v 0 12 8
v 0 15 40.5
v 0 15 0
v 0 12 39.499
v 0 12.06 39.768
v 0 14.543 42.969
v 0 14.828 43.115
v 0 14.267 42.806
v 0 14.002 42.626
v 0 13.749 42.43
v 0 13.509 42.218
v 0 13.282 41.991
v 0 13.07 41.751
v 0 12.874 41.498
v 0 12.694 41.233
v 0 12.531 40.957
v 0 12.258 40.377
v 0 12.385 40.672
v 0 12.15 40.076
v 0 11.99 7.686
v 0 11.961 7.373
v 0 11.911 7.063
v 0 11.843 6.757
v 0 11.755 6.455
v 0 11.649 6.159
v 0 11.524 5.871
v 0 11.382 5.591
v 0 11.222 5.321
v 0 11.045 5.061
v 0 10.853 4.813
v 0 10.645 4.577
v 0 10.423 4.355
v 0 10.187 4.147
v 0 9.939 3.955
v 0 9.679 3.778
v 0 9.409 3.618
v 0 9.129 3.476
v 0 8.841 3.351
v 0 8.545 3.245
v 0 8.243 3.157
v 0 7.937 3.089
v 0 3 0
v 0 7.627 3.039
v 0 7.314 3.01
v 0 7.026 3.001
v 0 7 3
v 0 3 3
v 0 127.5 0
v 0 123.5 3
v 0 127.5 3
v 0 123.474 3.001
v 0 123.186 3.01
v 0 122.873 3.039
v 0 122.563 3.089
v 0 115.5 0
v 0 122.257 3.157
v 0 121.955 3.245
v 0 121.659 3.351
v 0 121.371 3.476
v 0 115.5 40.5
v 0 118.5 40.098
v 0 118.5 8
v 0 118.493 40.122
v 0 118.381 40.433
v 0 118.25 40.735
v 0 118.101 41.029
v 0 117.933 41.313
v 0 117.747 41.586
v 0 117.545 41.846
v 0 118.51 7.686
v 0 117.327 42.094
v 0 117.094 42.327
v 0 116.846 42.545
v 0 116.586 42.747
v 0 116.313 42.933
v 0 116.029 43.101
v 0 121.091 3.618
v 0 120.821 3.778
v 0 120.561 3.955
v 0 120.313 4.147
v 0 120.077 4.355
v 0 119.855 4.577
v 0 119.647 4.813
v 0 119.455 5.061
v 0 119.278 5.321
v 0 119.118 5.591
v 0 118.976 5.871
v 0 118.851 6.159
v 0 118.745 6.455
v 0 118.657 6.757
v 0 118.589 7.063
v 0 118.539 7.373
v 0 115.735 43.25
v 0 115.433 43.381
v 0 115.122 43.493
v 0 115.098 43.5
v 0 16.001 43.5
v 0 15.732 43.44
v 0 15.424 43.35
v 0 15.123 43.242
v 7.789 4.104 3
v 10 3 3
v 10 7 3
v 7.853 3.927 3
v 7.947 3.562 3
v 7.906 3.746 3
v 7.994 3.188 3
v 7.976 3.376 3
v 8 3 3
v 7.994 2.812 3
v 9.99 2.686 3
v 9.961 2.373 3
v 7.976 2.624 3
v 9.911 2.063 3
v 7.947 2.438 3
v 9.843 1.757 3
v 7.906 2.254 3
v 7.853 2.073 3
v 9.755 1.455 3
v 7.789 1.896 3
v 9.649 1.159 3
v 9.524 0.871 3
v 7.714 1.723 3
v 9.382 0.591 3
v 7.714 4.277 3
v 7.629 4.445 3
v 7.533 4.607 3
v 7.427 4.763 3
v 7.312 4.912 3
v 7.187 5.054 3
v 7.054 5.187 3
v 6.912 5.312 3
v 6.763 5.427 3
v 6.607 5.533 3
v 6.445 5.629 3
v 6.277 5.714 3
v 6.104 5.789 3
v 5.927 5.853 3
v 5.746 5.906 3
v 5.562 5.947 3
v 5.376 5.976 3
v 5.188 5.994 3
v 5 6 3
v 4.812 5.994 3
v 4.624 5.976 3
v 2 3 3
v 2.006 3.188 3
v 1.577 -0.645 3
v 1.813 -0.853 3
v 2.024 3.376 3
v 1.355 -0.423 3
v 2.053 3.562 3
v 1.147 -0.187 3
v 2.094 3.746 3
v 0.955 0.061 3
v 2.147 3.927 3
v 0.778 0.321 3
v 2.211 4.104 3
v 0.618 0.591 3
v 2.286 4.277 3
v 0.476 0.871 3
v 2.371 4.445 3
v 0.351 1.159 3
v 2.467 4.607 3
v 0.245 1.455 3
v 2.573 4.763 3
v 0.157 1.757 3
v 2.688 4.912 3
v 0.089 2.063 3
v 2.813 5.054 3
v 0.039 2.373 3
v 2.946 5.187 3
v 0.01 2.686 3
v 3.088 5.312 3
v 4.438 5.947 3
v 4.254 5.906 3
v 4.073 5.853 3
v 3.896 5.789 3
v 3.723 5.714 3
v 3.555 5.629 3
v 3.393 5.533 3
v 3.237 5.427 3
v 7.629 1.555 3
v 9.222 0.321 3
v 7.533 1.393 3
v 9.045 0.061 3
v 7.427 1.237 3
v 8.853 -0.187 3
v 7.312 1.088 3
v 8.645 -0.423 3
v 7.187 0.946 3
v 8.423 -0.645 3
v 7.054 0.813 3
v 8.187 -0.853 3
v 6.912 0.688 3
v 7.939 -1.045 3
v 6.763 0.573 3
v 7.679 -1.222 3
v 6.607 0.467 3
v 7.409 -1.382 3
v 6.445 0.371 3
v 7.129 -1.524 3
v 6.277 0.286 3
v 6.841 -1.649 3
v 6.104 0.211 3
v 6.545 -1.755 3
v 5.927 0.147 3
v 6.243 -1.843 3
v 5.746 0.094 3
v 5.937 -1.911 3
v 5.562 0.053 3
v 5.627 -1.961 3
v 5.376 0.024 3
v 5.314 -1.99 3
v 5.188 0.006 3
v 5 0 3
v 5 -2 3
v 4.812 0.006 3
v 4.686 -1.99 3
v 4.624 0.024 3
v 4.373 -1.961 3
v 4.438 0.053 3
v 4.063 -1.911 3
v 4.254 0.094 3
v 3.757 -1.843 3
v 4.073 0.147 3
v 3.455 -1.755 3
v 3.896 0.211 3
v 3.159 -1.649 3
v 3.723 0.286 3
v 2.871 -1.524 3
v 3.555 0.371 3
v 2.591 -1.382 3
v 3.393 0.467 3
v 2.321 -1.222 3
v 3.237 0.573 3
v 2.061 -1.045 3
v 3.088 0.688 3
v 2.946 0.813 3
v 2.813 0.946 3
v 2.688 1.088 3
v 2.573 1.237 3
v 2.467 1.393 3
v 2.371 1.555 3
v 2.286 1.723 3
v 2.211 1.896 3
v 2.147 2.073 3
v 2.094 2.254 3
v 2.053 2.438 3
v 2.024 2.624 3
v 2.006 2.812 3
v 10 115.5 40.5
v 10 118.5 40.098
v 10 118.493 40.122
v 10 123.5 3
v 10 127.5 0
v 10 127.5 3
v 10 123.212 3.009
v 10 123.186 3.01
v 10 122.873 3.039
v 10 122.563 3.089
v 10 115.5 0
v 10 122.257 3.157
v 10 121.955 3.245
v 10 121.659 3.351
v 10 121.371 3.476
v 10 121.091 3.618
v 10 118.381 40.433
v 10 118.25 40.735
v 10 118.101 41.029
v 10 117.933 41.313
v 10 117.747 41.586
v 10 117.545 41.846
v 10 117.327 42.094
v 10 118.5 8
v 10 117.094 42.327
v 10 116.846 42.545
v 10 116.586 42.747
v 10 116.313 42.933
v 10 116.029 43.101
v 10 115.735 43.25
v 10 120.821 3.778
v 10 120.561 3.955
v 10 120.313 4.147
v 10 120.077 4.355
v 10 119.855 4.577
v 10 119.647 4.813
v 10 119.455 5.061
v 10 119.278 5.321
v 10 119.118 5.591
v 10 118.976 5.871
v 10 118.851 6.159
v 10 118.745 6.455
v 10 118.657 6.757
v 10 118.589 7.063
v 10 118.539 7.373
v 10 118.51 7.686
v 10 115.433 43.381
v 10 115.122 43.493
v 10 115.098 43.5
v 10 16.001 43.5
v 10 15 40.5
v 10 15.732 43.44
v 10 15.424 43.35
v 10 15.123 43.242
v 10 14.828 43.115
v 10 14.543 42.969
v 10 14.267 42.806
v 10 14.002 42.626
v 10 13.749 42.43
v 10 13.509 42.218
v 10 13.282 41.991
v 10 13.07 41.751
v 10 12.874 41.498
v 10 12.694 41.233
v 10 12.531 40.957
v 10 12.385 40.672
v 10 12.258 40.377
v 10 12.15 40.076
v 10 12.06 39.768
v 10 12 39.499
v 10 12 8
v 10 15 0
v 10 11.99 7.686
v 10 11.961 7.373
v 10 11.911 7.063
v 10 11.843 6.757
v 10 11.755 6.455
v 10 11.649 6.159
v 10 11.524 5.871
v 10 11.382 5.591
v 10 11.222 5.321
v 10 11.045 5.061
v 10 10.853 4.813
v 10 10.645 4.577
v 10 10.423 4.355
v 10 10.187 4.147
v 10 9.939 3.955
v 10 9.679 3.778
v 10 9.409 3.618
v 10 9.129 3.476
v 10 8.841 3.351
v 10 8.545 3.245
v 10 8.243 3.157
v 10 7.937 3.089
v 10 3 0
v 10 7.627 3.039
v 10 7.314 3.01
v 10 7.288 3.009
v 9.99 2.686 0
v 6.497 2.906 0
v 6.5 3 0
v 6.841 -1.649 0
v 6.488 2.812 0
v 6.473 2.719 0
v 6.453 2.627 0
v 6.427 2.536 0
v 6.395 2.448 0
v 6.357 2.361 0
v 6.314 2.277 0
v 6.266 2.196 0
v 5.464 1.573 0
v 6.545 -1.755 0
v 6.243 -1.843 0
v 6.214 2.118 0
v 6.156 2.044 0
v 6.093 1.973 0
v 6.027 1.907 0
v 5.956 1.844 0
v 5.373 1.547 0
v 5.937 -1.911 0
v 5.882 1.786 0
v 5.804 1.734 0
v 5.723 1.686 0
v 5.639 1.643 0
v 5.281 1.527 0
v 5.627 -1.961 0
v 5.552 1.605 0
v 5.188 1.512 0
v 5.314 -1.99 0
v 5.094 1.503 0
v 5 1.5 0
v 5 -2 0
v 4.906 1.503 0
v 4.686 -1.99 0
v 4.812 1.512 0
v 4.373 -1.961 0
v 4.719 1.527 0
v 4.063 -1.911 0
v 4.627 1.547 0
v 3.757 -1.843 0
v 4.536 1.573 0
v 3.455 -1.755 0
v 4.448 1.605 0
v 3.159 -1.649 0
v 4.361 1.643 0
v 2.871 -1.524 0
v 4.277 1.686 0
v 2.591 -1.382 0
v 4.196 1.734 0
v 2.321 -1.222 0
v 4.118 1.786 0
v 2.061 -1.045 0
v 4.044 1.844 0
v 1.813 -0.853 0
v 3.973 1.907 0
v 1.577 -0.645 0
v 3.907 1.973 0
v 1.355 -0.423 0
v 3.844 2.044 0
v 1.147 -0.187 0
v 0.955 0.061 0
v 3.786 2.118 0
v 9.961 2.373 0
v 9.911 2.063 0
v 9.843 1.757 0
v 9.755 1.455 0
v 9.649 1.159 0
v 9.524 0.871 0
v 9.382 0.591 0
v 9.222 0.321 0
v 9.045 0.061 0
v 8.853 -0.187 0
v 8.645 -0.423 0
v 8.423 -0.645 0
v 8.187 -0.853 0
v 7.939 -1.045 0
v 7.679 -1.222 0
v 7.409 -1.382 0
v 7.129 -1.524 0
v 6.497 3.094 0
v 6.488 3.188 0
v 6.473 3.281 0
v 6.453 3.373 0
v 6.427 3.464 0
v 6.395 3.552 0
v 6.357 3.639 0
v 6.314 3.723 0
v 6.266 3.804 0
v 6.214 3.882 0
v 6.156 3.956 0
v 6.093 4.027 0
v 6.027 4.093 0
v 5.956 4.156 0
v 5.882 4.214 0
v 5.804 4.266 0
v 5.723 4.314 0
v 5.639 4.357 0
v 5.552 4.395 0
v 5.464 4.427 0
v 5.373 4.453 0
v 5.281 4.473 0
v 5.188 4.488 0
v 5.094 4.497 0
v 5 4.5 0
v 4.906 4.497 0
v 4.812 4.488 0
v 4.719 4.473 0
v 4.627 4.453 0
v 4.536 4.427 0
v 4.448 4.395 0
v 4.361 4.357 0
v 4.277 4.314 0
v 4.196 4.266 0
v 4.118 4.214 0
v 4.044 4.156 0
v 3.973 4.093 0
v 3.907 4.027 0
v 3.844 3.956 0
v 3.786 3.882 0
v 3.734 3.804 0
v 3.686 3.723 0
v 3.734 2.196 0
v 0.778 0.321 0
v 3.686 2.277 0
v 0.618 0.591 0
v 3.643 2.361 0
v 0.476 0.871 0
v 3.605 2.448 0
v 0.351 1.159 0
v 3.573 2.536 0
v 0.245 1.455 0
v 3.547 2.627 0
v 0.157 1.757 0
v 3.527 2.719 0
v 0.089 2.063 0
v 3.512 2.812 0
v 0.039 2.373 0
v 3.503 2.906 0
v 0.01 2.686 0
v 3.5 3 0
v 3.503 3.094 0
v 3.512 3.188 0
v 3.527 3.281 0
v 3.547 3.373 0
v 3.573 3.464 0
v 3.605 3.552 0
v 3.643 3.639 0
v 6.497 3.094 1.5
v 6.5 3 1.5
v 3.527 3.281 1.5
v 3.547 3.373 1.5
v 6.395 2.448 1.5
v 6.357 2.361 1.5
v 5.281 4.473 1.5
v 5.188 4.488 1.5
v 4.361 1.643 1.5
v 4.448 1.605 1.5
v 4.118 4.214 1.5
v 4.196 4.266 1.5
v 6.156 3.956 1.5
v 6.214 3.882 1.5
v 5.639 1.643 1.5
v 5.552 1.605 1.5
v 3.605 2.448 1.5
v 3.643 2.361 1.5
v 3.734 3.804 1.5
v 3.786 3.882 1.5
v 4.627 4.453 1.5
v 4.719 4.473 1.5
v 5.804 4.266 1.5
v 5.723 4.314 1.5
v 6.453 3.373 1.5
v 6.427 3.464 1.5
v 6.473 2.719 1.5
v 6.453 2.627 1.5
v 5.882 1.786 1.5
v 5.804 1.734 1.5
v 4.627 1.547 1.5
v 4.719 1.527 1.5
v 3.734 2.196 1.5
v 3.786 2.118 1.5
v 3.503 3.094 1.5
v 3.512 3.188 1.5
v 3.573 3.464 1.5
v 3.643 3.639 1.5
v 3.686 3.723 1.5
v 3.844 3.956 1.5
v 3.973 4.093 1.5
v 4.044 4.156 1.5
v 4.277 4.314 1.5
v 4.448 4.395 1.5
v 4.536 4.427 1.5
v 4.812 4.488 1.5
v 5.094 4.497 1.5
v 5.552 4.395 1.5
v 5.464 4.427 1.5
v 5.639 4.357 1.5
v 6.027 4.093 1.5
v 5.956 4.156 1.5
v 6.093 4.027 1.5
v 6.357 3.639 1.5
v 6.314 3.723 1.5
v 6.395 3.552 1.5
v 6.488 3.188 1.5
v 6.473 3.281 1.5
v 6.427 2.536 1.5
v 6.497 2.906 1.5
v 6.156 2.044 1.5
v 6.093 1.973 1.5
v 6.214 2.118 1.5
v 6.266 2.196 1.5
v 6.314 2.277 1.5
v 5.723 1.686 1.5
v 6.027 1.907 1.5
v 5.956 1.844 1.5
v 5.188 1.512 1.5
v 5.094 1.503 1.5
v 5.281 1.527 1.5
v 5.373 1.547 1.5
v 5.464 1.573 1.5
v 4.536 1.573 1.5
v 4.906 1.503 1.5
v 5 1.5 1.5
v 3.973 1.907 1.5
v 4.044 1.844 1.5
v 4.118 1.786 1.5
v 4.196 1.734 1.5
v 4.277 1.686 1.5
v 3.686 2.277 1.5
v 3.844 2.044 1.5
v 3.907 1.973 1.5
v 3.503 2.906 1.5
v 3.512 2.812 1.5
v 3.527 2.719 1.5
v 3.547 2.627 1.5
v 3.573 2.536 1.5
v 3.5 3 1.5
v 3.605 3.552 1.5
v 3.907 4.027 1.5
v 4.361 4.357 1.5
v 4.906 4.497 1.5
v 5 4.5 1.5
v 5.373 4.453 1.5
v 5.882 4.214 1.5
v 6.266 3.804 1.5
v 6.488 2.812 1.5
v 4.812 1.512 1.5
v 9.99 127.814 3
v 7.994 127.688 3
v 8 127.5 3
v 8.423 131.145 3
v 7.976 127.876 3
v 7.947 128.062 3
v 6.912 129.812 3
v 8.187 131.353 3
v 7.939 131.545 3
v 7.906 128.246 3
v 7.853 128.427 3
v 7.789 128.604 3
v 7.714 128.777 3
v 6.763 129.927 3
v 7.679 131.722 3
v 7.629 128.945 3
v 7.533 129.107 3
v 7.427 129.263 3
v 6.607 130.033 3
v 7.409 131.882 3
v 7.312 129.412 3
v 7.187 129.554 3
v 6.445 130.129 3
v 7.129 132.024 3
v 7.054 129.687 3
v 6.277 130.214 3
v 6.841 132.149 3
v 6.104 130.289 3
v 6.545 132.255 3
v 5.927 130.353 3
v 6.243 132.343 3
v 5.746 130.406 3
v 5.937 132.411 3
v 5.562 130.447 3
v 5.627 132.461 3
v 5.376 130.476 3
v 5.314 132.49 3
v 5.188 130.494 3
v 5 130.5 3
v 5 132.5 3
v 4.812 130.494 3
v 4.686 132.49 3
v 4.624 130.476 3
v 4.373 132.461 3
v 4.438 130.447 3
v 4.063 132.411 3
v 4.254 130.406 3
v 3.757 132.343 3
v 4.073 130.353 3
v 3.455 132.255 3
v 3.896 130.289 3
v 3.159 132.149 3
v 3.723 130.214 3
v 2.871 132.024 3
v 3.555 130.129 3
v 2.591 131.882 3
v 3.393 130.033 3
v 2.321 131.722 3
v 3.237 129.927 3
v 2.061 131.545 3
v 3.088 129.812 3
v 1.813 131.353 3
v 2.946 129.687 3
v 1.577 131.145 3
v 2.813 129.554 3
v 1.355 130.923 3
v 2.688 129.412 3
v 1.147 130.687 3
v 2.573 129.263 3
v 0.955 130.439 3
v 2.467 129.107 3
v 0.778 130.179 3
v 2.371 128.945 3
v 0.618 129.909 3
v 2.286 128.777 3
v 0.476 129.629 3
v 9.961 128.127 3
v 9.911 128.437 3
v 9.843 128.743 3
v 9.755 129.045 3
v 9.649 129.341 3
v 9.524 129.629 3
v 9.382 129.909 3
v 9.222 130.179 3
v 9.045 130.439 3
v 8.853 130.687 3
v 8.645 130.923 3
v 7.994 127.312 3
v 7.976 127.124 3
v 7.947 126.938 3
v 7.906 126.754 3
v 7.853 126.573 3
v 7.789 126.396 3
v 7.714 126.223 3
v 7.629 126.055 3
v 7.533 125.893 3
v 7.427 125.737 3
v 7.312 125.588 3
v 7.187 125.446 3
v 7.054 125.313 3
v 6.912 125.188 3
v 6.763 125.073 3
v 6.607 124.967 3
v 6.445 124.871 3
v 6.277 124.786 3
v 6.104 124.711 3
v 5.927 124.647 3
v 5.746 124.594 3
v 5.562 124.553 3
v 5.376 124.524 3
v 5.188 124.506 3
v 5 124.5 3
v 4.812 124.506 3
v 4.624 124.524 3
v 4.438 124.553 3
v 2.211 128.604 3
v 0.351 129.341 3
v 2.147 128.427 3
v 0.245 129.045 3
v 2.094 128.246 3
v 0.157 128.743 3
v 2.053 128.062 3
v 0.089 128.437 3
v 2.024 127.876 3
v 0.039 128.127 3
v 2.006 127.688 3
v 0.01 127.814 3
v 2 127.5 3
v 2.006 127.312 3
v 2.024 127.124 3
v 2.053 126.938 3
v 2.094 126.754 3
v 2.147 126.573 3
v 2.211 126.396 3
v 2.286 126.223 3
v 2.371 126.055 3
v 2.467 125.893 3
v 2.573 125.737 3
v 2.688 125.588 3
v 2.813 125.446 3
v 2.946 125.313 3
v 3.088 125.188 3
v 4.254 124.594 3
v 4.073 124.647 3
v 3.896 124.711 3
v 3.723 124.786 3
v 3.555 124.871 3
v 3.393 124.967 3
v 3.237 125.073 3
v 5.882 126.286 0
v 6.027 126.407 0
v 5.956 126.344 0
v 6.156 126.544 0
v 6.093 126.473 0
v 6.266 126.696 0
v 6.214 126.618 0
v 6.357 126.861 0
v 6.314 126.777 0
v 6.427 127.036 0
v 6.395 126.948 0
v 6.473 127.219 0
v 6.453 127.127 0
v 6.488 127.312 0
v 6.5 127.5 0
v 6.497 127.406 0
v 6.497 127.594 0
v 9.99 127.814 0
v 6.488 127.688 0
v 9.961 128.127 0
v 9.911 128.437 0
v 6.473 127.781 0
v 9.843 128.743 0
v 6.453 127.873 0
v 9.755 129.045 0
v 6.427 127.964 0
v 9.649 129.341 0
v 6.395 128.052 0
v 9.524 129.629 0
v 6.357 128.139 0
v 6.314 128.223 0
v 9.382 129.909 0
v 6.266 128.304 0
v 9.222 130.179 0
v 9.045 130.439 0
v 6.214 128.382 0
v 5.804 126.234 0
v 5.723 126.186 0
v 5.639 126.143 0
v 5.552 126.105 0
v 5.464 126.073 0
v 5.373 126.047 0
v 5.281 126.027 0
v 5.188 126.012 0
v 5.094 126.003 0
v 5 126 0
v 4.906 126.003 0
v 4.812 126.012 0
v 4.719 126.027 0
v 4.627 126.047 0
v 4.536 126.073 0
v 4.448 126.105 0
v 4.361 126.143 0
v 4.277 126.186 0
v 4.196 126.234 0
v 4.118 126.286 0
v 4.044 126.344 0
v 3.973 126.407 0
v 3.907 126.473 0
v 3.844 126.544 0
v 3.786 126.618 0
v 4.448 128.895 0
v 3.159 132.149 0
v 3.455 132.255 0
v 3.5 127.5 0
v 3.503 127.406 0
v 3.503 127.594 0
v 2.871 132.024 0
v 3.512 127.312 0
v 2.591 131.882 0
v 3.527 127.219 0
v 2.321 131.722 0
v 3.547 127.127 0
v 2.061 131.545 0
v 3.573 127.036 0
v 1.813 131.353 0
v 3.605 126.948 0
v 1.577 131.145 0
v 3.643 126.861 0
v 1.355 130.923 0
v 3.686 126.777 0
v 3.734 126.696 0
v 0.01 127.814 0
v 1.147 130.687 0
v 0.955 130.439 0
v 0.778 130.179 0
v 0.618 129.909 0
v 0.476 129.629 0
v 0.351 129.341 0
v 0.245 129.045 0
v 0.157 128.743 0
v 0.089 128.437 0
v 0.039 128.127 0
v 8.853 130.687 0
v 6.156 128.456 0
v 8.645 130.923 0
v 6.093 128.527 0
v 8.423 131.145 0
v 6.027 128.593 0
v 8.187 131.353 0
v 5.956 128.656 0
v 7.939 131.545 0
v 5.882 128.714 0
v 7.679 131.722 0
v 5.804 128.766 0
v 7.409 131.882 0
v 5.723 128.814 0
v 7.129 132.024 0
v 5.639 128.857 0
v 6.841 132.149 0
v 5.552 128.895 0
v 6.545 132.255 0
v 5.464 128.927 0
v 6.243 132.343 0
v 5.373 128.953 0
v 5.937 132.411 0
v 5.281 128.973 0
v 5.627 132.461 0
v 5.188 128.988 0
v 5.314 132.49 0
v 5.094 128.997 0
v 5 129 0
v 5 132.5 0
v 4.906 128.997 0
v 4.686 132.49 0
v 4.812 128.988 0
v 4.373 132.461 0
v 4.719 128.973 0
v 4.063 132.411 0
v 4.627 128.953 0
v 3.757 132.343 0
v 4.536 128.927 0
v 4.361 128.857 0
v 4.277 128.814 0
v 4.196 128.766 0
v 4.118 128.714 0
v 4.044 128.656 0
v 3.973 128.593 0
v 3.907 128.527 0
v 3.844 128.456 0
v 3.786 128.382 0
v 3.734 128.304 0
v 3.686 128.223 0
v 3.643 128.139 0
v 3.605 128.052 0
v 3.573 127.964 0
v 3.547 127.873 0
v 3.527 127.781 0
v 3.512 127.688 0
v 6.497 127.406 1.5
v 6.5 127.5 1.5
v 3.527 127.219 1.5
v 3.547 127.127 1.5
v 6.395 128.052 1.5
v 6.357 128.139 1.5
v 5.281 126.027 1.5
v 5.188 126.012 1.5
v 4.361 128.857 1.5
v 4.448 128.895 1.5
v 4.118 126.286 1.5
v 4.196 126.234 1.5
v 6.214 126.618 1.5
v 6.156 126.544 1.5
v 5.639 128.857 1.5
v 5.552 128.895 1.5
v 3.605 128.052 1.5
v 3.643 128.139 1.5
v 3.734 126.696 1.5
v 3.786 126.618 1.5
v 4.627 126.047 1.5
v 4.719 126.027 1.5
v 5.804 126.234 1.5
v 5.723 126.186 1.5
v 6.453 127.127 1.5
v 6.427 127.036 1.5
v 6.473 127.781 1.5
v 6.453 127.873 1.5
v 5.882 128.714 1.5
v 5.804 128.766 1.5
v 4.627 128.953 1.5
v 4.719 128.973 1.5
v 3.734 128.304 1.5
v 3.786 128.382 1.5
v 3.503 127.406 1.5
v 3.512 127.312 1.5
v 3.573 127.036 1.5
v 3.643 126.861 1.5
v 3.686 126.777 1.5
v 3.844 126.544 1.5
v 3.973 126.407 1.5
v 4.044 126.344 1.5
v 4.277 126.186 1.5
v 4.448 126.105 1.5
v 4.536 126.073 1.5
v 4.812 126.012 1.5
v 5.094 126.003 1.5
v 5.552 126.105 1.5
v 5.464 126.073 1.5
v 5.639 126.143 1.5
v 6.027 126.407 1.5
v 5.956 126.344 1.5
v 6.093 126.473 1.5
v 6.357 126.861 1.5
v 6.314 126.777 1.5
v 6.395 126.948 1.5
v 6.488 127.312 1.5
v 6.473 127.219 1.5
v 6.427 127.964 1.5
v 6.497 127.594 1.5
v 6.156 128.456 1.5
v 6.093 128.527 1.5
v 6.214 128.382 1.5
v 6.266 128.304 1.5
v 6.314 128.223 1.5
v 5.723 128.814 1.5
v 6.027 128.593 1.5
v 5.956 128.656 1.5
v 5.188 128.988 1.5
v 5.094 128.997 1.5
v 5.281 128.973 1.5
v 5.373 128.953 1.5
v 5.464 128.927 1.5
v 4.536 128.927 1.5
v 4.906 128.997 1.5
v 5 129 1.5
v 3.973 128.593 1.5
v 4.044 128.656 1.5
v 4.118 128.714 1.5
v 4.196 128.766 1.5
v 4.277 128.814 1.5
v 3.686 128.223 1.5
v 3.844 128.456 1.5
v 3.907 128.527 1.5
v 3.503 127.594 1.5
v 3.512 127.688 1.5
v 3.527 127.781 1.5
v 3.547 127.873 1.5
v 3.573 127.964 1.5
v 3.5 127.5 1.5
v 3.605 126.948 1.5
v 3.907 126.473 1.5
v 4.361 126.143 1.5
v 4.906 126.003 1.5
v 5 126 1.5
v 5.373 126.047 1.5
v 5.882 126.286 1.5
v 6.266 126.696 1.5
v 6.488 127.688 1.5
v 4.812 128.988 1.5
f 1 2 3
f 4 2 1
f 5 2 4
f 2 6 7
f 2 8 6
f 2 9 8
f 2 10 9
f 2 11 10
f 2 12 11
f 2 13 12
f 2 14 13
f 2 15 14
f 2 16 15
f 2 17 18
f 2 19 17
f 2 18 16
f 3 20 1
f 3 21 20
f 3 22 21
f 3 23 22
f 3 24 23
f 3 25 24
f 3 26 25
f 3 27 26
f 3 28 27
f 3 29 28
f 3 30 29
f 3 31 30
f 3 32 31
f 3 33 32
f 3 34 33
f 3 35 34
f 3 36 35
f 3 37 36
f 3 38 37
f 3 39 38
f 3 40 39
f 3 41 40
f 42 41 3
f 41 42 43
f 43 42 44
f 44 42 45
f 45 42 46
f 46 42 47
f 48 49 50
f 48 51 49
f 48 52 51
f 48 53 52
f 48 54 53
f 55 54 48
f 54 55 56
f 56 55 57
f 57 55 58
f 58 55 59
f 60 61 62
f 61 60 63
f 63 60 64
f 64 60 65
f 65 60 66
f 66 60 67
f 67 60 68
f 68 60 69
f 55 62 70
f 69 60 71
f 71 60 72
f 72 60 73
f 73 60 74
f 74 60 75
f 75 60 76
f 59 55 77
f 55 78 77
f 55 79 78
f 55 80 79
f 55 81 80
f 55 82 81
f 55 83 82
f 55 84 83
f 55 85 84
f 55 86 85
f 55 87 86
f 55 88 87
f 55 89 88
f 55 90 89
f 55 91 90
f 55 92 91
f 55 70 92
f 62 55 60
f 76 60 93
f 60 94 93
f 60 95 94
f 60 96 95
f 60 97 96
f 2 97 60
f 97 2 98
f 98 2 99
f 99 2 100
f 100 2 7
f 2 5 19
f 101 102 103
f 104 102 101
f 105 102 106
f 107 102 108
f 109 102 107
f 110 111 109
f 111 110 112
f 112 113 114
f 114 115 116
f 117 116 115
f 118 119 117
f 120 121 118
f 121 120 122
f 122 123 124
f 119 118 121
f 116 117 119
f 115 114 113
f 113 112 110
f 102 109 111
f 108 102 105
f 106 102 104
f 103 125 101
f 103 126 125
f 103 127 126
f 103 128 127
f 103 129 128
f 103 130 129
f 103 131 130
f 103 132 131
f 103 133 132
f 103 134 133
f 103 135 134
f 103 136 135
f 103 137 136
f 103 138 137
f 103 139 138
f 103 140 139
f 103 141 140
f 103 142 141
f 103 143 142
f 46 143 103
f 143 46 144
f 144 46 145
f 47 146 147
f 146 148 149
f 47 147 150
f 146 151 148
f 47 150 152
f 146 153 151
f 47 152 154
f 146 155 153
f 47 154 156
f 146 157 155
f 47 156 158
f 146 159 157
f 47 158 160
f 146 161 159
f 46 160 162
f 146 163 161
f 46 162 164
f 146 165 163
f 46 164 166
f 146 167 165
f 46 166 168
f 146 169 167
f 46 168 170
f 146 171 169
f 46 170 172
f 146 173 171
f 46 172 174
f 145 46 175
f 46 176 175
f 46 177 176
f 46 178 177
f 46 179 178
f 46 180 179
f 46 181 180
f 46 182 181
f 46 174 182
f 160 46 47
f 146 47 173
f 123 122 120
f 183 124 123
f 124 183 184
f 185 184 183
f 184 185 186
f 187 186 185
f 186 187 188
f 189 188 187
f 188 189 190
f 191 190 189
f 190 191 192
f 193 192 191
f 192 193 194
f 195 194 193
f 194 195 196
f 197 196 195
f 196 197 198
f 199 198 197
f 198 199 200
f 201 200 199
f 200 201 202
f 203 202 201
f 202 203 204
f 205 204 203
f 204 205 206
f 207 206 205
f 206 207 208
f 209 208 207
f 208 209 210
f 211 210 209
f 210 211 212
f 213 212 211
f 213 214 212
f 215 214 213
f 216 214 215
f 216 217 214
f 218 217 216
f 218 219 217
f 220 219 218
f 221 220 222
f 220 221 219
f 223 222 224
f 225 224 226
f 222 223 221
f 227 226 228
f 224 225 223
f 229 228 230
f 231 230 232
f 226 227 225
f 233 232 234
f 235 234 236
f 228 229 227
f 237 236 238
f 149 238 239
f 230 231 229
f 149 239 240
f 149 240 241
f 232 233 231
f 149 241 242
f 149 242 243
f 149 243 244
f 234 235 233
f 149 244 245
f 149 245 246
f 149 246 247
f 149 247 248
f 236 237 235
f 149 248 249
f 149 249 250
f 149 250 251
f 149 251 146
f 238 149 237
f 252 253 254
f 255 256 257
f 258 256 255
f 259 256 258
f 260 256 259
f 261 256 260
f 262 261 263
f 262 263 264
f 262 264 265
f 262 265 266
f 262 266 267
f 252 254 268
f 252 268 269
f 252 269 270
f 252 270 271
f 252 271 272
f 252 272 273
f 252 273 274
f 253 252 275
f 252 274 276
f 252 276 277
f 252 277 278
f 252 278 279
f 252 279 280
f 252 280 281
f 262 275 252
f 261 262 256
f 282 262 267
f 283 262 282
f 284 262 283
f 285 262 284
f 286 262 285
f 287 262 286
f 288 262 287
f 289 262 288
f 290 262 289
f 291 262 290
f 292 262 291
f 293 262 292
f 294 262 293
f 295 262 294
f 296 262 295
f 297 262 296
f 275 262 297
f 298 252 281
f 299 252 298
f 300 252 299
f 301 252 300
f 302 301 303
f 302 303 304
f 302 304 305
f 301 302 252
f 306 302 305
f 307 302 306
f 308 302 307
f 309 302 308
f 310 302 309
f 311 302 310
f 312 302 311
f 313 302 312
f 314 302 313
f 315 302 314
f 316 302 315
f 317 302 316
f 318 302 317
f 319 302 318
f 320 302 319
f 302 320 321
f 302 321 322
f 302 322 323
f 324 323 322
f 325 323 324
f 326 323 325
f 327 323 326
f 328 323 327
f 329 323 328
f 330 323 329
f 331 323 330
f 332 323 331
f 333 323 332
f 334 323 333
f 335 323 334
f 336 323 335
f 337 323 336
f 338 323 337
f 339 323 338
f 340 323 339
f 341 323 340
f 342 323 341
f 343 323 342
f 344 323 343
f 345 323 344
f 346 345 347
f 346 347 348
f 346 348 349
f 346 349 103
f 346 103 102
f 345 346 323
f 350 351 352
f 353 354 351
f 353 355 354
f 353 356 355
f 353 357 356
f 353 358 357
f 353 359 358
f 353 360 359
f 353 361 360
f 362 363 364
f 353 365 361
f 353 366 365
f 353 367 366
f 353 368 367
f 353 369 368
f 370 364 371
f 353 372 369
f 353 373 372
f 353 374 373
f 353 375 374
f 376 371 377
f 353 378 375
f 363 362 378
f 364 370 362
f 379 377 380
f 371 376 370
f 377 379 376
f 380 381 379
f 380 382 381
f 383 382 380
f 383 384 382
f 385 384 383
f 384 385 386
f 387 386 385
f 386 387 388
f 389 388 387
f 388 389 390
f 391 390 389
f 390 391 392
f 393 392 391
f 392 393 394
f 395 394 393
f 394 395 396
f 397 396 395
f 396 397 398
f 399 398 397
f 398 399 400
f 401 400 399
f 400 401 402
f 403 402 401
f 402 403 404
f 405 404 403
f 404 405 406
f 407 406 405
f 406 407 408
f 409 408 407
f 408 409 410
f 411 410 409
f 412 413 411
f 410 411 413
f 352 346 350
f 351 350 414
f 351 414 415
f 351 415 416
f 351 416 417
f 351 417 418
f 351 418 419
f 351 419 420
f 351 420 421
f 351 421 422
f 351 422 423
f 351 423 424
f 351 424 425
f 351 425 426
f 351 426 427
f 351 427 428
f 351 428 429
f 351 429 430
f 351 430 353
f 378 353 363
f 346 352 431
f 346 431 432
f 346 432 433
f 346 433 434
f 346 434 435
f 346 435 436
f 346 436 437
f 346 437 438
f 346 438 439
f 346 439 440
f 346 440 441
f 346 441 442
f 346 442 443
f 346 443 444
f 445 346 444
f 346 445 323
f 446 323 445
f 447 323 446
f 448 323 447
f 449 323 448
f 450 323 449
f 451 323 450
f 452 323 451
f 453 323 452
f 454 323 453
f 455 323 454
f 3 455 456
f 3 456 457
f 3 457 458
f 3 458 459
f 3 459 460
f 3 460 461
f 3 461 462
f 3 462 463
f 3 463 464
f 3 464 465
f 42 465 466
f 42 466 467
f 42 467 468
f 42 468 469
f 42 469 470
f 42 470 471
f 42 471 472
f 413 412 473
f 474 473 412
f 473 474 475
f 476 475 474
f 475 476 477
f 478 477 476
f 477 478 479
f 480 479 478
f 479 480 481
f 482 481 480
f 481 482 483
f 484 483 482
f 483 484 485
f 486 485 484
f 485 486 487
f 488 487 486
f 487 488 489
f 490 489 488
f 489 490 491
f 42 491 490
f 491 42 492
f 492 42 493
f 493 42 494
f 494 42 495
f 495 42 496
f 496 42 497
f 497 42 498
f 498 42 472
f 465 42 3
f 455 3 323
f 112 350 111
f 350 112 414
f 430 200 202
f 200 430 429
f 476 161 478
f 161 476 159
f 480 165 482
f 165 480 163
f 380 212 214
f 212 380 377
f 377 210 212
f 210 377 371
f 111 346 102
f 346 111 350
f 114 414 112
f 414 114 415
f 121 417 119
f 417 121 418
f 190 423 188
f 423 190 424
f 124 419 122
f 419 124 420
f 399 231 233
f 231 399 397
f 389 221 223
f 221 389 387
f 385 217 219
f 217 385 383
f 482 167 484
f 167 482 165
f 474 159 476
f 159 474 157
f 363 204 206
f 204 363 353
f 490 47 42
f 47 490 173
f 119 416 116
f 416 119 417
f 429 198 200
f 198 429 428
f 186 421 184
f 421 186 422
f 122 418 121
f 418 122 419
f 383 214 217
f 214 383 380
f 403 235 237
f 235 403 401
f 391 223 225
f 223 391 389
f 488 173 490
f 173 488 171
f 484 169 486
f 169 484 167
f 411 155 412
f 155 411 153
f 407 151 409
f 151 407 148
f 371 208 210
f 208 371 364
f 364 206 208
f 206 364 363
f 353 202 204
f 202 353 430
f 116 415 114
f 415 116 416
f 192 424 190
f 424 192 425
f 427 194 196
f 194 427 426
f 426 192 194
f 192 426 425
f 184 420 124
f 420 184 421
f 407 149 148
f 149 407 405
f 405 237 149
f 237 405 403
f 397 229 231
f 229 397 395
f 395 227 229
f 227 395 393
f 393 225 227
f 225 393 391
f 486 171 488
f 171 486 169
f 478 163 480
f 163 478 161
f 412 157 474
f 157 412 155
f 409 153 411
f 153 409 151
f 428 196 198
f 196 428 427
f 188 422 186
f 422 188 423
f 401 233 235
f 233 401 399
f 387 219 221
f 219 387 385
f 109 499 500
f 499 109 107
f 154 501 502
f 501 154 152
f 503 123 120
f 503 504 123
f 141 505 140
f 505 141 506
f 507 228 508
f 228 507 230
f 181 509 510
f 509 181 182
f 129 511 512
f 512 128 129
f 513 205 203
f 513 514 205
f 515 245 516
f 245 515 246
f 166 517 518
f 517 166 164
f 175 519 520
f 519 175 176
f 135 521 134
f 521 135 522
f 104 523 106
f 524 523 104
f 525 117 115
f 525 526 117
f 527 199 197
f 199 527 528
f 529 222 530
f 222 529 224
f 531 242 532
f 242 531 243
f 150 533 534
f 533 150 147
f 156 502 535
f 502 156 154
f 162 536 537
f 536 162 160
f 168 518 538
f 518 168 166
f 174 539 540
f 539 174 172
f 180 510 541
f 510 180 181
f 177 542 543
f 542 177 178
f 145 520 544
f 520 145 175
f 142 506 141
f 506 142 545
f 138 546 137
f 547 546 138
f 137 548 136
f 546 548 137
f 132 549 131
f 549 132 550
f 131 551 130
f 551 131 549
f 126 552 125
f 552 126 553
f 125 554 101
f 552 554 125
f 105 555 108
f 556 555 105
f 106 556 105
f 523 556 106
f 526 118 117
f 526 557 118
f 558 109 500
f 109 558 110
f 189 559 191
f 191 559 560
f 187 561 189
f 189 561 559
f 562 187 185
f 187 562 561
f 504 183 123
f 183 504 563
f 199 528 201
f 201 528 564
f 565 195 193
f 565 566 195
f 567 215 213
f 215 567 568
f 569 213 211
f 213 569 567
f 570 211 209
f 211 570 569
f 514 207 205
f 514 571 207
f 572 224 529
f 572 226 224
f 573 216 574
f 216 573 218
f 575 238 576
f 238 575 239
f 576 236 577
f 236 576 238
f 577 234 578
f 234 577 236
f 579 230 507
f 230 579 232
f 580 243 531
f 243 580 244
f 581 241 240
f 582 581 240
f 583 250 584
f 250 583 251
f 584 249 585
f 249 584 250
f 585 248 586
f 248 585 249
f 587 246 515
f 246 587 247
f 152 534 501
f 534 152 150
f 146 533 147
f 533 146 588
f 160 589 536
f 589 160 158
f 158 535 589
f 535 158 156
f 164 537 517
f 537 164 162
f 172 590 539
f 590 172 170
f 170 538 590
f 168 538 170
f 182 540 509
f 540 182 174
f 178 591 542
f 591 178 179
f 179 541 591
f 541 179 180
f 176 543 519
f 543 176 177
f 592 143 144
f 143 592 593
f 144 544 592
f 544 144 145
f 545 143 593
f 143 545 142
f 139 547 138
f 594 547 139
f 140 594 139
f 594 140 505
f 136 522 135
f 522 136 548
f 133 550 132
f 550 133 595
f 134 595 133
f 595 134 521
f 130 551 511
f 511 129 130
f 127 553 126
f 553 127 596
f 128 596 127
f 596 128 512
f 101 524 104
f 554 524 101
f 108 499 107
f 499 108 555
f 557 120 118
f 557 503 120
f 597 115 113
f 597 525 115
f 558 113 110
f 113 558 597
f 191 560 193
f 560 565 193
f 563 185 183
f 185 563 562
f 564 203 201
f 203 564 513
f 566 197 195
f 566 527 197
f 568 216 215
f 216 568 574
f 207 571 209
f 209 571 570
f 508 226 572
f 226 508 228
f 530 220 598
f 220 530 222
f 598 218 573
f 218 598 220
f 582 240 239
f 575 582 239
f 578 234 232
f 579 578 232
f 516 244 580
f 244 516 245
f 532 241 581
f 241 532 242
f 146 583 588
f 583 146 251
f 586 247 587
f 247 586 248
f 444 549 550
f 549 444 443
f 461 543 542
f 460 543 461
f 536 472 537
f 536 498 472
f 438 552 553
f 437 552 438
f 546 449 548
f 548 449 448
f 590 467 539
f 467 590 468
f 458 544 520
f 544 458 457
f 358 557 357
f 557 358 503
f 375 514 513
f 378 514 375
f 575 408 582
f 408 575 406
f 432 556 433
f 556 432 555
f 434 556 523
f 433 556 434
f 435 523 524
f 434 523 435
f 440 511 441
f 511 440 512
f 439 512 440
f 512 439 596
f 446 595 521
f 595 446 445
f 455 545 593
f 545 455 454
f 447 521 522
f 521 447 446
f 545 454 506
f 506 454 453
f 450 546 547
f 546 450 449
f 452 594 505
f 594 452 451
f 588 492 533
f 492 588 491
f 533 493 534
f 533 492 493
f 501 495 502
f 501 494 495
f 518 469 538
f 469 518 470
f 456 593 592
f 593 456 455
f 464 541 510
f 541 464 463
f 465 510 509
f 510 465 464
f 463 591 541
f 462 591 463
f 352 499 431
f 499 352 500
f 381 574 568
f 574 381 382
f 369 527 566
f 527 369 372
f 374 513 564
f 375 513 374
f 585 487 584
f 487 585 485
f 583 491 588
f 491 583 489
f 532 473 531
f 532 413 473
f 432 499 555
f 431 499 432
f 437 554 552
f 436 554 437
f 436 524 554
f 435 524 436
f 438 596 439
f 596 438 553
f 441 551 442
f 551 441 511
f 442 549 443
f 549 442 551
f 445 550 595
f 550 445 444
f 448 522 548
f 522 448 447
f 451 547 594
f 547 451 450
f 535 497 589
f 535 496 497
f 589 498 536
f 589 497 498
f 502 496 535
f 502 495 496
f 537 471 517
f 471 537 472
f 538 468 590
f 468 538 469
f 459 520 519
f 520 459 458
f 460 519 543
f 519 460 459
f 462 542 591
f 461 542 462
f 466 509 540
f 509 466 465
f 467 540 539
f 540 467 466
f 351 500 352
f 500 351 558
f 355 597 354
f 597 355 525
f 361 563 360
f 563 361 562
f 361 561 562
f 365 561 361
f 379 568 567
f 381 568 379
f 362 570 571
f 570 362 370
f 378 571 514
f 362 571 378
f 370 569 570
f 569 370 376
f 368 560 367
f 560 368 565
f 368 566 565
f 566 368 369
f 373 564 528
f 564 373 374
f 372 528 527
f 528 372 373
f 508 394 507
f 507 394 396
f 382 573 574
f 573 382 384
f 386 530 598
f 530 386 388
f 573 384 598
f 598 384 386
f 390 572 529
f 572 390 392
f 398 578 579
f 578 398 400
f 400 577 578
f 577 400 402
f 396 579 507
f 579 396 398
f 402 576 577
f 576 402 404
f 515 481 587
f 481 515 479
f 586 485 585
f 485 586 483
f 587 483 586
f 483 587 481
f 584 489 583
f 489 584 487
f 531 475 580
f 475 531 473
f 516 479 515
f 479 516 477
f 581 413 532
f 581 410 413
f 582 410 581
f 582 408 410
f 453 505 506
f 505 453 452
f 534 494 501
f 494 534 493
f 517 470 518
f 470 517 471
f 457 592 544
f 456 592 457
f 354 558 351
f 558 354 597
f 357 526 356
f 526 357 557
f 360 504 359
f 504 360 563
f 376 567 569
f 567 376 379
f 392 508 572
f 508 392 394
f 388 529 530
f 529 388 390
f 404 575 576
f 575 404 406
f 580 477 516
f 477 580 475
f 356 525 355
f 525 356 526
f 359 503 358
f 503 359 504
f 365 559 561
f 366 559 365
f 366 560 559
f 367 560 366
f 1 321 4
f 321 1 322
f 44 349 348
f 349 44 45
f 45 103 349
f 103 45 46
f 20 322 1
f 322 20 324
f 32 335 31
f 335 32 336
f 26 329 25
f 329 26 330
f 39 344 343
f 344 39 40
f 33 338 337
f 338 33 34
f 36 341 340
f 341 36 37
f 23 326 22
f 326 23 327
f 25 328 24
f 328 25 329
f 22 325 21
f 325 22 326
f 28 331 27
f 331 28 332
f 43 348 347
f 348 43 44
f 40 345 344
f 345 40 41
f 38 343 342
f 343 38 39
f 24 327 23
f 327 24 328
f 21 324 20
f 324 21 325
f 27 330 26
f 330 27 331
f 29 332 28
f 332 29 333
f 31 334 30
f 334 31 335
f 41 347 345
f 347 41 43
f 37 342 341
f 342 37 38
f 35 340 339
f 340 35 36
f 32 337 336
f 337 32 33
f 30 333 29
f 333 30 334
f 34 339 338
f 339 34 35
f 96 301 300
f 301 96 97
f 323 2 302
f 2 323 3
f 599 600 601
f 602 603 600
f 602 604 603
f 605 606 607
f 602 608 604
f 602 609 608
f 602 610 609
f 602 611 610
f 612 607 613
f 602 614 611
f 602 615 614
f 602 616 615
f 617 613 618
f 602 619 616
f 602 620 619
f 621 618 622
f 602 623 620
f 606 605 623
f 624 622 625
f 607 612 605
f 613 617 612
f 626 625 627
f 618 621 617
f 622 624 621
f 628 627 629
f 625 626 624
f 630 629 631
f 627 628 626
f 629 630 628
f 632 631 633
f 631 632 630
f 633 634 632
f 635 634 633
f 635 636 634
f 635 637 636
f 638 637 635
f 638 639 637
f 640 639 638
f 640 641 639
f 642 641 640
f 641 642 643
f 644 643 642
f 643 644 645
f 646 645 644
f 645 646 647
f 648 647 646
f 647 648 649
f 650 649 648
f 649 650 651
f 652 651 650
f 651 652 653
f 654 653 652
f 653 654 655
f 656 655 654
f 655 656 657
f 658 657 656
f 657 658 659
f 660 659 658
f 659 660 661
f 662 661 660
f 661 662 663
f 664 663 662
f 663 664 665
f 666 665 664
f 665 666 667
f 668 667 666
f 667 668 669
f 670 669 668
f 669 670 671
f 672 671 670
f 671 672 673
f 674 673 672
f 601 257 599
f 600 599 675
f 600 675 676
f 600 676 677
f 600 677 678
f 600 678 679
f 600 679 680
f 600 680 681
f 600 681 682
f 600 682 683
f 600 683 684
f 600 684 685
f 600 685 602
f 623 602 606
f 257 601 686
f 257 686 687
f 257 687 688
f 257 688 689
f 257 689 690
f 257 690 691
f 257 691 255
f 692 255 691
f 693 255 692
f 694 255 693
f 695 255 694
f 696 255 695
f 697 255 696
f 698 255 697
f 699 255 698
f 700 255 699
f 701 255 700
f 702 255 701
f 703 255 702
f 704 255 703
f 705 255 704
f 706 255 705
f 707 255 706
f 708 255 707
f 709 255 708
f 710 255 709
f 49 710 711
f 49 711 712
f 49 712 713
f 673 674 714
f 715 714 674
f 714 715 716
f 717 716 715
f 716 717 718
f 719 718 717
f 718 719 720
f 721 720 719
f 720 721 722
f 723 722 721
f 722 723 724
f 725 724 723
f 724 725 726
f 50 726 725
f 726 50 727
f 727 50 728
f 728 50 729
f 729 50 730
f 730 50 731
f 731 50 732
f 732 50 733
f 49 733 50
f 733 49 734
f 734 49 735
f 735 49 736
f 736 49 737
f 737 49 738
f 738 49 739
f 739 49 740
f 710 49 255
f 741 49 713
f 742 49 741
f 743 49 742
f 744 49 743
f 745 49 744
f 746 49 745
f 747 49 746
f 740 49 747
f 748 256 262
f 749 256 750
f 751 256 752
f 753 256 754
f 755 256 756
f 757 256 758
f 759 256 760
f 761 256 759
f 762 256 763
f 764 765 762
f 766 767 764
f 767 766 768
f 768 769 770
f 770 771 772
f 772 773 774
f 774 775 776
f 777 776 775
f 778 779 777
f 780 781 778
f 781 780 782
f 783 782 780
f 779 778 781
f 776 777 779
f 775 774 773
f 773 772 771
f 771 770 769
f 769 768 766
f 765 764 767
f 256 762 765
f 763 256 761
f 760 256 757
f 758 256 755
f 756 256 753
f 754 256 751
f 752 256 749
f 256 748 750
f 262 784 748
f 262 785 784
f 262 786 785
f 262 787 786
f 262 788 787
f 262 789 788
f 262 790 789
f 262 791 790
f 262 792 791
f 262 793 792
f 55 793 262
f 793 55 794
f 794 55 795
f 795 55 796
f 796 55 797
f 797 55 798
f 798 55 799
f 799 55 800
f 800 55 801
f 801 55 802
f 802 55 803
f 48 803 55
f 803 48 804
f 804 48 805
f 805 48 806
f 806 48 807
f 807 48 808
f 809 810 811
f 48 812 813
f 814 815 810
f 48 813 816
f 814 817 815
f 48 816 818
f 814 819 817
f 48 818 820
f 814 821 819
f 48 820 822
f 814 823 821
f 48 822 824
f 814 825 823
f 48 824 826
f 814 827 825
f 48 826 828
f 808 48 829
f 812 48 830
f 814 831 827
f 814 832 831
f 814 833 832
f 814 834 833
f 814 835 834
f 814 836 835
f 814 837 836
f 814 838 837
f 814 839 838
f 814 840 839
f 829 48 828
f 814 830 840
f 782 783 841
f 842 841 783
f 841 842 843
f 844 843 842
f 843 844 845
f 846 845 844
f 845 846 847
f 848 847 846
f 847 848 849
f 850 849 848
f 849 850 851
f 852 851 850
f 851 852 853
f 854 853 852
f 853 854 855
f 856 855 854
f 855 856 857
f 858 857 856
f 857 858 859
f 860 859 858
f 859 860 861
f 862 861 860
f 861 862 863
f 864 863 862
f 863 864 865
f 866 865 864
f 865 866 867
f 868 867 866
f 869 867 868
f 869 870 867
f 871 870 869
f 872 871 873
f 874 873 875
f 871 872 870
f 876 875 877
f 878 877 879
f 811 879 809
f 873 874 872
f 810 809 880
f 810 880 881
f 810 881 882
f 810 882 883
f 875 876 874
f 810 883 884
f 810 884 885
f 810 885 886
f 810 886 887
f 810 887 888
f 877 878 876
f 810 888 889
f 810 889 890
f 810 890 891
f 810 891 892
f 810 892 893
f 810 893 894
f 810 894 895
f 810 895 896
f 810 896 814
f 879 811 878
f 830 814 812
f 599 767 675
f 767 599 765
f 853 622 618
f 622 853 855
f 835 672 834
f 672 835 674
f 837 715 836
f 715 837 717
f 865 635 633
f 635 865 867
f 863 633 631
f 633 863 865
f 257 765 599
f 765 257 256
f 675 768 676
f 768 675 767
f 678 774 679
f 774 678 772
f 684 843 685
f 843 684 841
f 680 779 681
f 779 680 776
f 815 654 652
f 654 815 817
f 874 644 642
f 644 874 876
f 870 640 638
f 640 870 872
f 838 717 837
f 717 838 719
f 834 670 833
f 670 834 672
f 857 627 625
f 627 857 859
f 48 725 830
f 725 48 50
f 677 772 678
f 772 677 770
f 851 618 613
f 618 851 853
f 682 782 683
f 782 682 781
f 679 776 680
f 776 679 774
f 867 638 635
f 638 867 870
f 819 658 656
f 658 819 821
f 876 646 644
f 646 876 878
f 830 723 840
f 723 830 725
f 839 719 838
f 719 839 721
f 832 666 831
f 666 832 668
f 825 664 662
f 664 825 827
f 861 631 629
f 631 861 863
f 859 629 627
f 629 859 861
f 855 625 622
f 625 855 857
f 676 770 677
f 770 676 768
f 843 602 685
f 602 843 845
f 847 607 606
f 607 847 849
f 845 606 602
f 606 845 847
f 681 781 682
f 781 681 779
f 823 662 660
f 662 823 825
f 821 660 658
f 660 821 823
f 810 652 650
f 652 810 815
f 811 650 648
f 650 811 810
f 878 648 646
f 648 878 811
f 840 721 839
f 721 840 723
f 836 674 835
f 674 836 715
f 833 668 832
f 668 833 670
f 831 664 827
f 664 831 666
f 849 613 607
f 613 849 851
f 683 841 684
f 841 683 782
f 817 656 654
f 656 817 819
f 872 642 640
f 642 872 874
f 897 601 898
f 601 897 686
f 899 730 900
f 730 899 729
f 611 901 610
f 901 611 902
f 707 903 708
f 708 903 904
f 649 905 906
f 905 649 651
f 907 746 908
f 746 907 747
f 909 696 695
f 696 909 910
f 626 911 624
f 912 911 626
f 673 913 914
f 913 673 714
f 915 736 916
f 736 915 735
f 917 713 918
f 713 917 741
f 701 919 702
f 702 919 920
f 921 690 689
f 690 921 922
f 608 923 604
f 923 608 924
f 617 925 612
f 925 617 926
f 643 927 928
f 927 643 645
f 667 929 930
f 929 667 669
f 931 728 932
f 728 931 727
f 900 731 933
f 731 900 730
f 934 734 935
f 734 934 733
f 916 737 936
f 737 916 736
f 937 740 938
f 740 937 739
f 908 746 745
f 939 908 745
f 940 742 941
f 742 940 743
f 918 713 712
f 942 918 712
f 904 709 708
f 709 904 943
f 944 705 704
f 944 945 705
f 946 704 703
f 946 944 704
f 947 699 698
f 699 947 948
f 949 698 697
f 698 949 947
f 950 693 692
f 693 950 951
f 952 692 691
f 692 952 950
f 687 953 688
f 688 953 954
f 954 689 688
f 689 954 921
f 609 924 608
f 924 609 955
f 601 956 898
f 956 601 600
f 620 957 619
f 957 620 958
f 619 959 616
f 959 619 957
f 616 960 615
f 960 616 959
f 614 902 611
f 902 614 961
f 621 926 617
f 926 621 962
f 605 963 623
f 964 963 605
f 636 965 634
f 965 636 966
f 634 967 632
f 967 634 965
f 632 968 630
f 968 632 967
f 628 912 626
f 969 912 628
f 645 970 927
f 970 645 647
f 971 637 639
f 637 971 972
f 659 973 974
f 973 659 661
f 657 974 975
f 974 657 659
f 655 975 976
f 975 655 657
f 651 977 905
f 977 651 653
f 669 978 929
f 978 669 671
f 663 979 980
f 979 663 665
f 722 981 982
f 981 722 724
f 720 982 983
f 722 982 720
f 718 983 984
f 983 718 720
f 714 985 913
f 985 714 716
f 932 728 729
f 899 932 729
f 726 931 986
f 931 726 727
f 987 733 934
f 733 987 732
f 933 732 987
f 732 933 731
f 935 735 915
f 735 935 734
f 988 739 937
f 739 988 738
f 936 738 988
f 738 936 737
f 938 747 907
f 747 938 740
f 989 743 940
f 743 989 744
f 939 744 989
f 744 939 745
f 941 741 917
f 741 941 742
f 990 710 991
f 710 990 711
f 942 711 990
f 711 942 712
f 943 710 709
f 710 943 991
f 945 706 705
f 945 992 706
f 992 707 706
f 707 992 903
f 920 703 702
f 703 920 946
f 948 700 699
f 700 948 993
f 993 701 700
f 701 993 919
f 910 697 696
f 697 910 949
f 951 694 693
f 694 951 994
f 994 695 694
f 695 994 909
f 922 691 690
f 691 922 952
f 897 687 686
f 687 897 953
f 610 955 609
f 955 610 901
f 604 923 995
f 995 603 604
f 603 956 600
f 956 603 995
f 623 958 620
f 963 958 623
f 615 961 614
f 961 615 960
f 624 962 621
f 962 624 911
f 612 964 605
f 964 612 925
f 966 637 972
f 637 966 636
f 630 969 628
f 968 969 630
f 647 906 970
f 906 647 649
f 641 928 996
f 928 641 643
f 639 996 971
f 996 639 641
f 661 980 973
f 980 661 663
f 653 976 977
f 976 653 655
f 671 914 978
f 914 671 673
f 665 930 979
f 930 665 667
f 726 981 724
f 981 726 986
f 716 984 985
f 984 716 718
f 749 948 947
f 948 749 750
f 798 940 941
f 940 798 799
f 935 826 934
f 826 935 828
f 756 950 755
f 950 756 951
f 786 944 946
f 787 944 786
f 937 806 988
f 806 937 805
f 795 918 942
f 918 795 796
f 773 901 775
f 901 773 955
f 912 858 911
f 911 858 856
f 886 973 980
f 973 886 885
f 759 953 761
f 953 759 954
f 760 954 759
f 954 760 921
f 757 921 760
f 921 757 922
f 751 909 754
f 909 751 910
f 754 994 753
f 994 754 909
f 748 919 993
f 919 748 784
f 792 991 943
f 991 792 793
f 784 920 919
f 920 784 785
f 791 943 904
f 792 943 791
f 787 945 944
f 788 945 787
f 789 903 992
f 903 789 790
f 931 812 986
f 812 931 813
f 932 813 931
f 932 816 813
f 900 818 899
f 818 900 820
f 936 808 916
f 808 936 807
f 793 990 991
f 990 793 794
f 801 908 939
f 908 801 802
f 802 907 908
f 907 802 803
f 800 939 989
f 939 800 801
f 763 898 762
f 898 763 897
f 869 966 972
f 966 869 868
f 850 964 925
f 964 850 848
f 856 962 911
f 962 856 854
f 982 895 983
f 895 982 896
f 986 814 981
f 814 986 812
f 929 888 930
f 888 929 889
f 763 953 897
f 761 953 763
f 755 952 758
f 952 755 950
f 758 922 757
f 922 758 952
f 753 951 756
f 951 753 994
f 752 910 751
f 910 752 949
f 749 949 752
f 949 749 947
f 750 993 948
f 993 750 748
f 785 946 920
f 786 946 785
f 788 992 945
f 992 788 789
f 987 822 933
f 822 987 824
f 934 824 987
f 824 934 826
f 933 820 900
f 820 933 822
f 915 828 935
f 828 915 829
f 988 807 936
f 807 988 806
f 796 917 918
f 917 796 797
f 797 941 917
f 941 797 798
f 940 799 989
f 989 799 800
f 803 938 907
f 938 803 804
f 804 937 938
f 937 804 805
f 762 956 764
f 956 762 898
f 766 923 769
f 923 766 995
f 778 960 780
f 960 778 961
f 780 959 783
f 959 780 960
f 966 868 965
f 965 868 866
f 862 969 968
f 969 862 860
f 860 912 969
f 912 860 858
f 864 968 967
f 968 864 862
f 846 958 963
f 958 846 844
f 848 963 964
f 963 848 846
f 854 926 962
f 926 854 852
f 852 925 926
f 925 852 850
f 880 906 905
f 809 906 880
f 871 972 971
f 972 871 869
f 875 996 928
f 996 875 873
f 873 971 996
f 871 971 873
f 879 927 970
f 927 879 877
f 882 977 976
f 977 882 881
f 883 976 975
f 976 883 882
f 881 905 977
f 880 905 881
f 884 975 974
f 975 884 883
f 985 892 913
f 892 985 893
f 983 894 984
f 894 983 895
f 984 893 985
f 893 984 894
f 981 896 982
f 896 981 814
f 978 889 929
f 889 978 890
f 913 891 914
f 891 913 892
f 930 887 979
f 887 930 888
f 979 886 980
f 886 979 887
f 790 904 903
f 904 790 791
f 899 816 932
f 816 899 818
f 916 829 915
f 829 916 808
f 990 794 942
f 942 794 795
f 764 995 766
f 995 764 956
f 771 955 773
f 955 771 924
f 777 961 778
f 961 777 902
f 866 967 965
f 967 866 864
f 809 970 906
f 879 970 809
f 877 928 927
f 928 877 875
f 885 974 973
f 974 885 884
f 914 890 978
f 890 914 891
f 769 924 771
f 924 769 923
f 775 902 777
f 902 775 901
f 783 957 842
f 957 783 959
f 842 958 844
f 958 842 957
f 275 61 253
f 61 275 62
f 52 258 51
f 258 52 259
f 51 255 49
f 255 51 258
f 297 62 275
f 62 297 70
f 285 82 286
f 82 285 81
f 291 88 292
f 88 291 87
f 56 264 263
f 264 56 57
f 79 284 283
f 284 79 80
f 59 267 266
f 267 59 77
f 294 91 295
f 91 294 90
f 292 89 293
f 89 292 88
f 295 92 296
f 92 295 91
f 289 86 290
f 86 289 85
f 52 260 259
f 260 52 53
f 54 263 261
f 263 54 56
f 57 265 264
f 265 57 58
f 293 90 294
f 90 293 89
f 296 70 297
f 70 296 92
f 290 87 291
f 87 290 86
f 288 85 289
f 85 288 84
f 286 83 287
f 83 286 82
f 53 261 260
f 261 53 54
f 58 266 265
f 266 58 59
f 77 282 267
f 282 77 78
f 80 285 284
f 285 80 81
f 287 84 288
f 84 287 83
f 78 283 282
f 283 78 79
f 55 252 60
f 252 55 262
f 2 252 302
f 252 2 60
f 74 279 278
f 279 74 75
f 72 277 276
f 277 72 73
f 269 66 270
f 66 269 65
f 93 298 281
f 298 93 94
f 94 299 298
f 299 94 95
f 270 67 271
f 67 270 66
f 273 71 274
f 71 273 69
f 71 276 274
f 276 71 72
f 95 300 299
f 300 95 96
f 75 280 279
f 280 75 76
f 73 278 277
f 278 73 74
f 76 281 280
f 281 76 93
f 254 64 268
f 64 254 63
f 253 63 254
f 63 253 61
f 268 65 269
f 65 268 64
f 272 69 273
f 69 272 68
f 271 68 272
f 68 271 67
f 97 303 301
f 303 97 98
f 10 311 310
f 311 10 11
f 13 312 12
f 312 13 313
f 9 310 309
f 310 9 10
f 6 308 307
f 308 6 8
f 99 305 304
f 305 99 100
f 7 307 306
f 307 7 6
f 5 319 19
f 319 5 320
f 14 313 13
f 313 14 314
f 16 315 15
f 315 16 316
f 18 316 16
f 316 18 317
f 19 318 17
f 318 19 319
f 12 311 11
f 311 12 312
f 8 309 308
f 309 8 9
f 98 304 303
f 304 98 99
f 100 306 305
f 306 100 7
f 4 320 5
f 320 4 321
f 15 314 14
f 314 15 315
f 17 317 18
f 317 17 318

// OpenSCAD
module vertical() {
	translate([0,12,0])
		cube([10,3,43.5]);
	translate([0,7,8])
		fillet(10,10);
}

module fillet(filletsize,width)
{
	difference() {
	translate([0,-filletsize/2,-filletsize/2])
		cube([width,filletsize,filletsize]);
	translate([-1,0,0])
		rotate([0,90,0])
			cylinder(width+2,d=filletsize,$fn=100);
    translate([-1,-filletsize,-filletsize/2])
		cube([width+2,filletsize,filletsize]);
    translate([-1,-filletsize/2,0])
		cube([width+2,filletsize,filletsize]);		
	}
}


module tab() {
difference() {
	union() {
        translate([0,3,0])
		cube([10,10,3]);
		translate([10/2,3,0])
			cylinder(3,d=10,$fn=100);
		}
    translate([10/2,3,0])			
		countersink(3);
	}
}

module countersink(drillsize)
	union() {
		cylinder(drillsize*3,0,drillsize*3,$fn=100);
		translate([0,0,-3])
		cylinder(10,d=drillsize,$fn=100);
	}
	
module bracket() {
difference() {
	union() {
			tab();
			vertical();
			translate([0,130.5,0])
				mirror([0,1,0]) {
					union() {
						tab();
						vertical();
					}
			}
			translate([0,12,40.5])
				cube([10,106.5,3]);
		}
		translate([12,113.5,38.5])
			rotate([0,180,0])
				fillet(10.5,16);
		translate([-0.3,17,38.5])
			rotate([180,0,0])
				fillet(10.2,16);
	}
}


bracket();
